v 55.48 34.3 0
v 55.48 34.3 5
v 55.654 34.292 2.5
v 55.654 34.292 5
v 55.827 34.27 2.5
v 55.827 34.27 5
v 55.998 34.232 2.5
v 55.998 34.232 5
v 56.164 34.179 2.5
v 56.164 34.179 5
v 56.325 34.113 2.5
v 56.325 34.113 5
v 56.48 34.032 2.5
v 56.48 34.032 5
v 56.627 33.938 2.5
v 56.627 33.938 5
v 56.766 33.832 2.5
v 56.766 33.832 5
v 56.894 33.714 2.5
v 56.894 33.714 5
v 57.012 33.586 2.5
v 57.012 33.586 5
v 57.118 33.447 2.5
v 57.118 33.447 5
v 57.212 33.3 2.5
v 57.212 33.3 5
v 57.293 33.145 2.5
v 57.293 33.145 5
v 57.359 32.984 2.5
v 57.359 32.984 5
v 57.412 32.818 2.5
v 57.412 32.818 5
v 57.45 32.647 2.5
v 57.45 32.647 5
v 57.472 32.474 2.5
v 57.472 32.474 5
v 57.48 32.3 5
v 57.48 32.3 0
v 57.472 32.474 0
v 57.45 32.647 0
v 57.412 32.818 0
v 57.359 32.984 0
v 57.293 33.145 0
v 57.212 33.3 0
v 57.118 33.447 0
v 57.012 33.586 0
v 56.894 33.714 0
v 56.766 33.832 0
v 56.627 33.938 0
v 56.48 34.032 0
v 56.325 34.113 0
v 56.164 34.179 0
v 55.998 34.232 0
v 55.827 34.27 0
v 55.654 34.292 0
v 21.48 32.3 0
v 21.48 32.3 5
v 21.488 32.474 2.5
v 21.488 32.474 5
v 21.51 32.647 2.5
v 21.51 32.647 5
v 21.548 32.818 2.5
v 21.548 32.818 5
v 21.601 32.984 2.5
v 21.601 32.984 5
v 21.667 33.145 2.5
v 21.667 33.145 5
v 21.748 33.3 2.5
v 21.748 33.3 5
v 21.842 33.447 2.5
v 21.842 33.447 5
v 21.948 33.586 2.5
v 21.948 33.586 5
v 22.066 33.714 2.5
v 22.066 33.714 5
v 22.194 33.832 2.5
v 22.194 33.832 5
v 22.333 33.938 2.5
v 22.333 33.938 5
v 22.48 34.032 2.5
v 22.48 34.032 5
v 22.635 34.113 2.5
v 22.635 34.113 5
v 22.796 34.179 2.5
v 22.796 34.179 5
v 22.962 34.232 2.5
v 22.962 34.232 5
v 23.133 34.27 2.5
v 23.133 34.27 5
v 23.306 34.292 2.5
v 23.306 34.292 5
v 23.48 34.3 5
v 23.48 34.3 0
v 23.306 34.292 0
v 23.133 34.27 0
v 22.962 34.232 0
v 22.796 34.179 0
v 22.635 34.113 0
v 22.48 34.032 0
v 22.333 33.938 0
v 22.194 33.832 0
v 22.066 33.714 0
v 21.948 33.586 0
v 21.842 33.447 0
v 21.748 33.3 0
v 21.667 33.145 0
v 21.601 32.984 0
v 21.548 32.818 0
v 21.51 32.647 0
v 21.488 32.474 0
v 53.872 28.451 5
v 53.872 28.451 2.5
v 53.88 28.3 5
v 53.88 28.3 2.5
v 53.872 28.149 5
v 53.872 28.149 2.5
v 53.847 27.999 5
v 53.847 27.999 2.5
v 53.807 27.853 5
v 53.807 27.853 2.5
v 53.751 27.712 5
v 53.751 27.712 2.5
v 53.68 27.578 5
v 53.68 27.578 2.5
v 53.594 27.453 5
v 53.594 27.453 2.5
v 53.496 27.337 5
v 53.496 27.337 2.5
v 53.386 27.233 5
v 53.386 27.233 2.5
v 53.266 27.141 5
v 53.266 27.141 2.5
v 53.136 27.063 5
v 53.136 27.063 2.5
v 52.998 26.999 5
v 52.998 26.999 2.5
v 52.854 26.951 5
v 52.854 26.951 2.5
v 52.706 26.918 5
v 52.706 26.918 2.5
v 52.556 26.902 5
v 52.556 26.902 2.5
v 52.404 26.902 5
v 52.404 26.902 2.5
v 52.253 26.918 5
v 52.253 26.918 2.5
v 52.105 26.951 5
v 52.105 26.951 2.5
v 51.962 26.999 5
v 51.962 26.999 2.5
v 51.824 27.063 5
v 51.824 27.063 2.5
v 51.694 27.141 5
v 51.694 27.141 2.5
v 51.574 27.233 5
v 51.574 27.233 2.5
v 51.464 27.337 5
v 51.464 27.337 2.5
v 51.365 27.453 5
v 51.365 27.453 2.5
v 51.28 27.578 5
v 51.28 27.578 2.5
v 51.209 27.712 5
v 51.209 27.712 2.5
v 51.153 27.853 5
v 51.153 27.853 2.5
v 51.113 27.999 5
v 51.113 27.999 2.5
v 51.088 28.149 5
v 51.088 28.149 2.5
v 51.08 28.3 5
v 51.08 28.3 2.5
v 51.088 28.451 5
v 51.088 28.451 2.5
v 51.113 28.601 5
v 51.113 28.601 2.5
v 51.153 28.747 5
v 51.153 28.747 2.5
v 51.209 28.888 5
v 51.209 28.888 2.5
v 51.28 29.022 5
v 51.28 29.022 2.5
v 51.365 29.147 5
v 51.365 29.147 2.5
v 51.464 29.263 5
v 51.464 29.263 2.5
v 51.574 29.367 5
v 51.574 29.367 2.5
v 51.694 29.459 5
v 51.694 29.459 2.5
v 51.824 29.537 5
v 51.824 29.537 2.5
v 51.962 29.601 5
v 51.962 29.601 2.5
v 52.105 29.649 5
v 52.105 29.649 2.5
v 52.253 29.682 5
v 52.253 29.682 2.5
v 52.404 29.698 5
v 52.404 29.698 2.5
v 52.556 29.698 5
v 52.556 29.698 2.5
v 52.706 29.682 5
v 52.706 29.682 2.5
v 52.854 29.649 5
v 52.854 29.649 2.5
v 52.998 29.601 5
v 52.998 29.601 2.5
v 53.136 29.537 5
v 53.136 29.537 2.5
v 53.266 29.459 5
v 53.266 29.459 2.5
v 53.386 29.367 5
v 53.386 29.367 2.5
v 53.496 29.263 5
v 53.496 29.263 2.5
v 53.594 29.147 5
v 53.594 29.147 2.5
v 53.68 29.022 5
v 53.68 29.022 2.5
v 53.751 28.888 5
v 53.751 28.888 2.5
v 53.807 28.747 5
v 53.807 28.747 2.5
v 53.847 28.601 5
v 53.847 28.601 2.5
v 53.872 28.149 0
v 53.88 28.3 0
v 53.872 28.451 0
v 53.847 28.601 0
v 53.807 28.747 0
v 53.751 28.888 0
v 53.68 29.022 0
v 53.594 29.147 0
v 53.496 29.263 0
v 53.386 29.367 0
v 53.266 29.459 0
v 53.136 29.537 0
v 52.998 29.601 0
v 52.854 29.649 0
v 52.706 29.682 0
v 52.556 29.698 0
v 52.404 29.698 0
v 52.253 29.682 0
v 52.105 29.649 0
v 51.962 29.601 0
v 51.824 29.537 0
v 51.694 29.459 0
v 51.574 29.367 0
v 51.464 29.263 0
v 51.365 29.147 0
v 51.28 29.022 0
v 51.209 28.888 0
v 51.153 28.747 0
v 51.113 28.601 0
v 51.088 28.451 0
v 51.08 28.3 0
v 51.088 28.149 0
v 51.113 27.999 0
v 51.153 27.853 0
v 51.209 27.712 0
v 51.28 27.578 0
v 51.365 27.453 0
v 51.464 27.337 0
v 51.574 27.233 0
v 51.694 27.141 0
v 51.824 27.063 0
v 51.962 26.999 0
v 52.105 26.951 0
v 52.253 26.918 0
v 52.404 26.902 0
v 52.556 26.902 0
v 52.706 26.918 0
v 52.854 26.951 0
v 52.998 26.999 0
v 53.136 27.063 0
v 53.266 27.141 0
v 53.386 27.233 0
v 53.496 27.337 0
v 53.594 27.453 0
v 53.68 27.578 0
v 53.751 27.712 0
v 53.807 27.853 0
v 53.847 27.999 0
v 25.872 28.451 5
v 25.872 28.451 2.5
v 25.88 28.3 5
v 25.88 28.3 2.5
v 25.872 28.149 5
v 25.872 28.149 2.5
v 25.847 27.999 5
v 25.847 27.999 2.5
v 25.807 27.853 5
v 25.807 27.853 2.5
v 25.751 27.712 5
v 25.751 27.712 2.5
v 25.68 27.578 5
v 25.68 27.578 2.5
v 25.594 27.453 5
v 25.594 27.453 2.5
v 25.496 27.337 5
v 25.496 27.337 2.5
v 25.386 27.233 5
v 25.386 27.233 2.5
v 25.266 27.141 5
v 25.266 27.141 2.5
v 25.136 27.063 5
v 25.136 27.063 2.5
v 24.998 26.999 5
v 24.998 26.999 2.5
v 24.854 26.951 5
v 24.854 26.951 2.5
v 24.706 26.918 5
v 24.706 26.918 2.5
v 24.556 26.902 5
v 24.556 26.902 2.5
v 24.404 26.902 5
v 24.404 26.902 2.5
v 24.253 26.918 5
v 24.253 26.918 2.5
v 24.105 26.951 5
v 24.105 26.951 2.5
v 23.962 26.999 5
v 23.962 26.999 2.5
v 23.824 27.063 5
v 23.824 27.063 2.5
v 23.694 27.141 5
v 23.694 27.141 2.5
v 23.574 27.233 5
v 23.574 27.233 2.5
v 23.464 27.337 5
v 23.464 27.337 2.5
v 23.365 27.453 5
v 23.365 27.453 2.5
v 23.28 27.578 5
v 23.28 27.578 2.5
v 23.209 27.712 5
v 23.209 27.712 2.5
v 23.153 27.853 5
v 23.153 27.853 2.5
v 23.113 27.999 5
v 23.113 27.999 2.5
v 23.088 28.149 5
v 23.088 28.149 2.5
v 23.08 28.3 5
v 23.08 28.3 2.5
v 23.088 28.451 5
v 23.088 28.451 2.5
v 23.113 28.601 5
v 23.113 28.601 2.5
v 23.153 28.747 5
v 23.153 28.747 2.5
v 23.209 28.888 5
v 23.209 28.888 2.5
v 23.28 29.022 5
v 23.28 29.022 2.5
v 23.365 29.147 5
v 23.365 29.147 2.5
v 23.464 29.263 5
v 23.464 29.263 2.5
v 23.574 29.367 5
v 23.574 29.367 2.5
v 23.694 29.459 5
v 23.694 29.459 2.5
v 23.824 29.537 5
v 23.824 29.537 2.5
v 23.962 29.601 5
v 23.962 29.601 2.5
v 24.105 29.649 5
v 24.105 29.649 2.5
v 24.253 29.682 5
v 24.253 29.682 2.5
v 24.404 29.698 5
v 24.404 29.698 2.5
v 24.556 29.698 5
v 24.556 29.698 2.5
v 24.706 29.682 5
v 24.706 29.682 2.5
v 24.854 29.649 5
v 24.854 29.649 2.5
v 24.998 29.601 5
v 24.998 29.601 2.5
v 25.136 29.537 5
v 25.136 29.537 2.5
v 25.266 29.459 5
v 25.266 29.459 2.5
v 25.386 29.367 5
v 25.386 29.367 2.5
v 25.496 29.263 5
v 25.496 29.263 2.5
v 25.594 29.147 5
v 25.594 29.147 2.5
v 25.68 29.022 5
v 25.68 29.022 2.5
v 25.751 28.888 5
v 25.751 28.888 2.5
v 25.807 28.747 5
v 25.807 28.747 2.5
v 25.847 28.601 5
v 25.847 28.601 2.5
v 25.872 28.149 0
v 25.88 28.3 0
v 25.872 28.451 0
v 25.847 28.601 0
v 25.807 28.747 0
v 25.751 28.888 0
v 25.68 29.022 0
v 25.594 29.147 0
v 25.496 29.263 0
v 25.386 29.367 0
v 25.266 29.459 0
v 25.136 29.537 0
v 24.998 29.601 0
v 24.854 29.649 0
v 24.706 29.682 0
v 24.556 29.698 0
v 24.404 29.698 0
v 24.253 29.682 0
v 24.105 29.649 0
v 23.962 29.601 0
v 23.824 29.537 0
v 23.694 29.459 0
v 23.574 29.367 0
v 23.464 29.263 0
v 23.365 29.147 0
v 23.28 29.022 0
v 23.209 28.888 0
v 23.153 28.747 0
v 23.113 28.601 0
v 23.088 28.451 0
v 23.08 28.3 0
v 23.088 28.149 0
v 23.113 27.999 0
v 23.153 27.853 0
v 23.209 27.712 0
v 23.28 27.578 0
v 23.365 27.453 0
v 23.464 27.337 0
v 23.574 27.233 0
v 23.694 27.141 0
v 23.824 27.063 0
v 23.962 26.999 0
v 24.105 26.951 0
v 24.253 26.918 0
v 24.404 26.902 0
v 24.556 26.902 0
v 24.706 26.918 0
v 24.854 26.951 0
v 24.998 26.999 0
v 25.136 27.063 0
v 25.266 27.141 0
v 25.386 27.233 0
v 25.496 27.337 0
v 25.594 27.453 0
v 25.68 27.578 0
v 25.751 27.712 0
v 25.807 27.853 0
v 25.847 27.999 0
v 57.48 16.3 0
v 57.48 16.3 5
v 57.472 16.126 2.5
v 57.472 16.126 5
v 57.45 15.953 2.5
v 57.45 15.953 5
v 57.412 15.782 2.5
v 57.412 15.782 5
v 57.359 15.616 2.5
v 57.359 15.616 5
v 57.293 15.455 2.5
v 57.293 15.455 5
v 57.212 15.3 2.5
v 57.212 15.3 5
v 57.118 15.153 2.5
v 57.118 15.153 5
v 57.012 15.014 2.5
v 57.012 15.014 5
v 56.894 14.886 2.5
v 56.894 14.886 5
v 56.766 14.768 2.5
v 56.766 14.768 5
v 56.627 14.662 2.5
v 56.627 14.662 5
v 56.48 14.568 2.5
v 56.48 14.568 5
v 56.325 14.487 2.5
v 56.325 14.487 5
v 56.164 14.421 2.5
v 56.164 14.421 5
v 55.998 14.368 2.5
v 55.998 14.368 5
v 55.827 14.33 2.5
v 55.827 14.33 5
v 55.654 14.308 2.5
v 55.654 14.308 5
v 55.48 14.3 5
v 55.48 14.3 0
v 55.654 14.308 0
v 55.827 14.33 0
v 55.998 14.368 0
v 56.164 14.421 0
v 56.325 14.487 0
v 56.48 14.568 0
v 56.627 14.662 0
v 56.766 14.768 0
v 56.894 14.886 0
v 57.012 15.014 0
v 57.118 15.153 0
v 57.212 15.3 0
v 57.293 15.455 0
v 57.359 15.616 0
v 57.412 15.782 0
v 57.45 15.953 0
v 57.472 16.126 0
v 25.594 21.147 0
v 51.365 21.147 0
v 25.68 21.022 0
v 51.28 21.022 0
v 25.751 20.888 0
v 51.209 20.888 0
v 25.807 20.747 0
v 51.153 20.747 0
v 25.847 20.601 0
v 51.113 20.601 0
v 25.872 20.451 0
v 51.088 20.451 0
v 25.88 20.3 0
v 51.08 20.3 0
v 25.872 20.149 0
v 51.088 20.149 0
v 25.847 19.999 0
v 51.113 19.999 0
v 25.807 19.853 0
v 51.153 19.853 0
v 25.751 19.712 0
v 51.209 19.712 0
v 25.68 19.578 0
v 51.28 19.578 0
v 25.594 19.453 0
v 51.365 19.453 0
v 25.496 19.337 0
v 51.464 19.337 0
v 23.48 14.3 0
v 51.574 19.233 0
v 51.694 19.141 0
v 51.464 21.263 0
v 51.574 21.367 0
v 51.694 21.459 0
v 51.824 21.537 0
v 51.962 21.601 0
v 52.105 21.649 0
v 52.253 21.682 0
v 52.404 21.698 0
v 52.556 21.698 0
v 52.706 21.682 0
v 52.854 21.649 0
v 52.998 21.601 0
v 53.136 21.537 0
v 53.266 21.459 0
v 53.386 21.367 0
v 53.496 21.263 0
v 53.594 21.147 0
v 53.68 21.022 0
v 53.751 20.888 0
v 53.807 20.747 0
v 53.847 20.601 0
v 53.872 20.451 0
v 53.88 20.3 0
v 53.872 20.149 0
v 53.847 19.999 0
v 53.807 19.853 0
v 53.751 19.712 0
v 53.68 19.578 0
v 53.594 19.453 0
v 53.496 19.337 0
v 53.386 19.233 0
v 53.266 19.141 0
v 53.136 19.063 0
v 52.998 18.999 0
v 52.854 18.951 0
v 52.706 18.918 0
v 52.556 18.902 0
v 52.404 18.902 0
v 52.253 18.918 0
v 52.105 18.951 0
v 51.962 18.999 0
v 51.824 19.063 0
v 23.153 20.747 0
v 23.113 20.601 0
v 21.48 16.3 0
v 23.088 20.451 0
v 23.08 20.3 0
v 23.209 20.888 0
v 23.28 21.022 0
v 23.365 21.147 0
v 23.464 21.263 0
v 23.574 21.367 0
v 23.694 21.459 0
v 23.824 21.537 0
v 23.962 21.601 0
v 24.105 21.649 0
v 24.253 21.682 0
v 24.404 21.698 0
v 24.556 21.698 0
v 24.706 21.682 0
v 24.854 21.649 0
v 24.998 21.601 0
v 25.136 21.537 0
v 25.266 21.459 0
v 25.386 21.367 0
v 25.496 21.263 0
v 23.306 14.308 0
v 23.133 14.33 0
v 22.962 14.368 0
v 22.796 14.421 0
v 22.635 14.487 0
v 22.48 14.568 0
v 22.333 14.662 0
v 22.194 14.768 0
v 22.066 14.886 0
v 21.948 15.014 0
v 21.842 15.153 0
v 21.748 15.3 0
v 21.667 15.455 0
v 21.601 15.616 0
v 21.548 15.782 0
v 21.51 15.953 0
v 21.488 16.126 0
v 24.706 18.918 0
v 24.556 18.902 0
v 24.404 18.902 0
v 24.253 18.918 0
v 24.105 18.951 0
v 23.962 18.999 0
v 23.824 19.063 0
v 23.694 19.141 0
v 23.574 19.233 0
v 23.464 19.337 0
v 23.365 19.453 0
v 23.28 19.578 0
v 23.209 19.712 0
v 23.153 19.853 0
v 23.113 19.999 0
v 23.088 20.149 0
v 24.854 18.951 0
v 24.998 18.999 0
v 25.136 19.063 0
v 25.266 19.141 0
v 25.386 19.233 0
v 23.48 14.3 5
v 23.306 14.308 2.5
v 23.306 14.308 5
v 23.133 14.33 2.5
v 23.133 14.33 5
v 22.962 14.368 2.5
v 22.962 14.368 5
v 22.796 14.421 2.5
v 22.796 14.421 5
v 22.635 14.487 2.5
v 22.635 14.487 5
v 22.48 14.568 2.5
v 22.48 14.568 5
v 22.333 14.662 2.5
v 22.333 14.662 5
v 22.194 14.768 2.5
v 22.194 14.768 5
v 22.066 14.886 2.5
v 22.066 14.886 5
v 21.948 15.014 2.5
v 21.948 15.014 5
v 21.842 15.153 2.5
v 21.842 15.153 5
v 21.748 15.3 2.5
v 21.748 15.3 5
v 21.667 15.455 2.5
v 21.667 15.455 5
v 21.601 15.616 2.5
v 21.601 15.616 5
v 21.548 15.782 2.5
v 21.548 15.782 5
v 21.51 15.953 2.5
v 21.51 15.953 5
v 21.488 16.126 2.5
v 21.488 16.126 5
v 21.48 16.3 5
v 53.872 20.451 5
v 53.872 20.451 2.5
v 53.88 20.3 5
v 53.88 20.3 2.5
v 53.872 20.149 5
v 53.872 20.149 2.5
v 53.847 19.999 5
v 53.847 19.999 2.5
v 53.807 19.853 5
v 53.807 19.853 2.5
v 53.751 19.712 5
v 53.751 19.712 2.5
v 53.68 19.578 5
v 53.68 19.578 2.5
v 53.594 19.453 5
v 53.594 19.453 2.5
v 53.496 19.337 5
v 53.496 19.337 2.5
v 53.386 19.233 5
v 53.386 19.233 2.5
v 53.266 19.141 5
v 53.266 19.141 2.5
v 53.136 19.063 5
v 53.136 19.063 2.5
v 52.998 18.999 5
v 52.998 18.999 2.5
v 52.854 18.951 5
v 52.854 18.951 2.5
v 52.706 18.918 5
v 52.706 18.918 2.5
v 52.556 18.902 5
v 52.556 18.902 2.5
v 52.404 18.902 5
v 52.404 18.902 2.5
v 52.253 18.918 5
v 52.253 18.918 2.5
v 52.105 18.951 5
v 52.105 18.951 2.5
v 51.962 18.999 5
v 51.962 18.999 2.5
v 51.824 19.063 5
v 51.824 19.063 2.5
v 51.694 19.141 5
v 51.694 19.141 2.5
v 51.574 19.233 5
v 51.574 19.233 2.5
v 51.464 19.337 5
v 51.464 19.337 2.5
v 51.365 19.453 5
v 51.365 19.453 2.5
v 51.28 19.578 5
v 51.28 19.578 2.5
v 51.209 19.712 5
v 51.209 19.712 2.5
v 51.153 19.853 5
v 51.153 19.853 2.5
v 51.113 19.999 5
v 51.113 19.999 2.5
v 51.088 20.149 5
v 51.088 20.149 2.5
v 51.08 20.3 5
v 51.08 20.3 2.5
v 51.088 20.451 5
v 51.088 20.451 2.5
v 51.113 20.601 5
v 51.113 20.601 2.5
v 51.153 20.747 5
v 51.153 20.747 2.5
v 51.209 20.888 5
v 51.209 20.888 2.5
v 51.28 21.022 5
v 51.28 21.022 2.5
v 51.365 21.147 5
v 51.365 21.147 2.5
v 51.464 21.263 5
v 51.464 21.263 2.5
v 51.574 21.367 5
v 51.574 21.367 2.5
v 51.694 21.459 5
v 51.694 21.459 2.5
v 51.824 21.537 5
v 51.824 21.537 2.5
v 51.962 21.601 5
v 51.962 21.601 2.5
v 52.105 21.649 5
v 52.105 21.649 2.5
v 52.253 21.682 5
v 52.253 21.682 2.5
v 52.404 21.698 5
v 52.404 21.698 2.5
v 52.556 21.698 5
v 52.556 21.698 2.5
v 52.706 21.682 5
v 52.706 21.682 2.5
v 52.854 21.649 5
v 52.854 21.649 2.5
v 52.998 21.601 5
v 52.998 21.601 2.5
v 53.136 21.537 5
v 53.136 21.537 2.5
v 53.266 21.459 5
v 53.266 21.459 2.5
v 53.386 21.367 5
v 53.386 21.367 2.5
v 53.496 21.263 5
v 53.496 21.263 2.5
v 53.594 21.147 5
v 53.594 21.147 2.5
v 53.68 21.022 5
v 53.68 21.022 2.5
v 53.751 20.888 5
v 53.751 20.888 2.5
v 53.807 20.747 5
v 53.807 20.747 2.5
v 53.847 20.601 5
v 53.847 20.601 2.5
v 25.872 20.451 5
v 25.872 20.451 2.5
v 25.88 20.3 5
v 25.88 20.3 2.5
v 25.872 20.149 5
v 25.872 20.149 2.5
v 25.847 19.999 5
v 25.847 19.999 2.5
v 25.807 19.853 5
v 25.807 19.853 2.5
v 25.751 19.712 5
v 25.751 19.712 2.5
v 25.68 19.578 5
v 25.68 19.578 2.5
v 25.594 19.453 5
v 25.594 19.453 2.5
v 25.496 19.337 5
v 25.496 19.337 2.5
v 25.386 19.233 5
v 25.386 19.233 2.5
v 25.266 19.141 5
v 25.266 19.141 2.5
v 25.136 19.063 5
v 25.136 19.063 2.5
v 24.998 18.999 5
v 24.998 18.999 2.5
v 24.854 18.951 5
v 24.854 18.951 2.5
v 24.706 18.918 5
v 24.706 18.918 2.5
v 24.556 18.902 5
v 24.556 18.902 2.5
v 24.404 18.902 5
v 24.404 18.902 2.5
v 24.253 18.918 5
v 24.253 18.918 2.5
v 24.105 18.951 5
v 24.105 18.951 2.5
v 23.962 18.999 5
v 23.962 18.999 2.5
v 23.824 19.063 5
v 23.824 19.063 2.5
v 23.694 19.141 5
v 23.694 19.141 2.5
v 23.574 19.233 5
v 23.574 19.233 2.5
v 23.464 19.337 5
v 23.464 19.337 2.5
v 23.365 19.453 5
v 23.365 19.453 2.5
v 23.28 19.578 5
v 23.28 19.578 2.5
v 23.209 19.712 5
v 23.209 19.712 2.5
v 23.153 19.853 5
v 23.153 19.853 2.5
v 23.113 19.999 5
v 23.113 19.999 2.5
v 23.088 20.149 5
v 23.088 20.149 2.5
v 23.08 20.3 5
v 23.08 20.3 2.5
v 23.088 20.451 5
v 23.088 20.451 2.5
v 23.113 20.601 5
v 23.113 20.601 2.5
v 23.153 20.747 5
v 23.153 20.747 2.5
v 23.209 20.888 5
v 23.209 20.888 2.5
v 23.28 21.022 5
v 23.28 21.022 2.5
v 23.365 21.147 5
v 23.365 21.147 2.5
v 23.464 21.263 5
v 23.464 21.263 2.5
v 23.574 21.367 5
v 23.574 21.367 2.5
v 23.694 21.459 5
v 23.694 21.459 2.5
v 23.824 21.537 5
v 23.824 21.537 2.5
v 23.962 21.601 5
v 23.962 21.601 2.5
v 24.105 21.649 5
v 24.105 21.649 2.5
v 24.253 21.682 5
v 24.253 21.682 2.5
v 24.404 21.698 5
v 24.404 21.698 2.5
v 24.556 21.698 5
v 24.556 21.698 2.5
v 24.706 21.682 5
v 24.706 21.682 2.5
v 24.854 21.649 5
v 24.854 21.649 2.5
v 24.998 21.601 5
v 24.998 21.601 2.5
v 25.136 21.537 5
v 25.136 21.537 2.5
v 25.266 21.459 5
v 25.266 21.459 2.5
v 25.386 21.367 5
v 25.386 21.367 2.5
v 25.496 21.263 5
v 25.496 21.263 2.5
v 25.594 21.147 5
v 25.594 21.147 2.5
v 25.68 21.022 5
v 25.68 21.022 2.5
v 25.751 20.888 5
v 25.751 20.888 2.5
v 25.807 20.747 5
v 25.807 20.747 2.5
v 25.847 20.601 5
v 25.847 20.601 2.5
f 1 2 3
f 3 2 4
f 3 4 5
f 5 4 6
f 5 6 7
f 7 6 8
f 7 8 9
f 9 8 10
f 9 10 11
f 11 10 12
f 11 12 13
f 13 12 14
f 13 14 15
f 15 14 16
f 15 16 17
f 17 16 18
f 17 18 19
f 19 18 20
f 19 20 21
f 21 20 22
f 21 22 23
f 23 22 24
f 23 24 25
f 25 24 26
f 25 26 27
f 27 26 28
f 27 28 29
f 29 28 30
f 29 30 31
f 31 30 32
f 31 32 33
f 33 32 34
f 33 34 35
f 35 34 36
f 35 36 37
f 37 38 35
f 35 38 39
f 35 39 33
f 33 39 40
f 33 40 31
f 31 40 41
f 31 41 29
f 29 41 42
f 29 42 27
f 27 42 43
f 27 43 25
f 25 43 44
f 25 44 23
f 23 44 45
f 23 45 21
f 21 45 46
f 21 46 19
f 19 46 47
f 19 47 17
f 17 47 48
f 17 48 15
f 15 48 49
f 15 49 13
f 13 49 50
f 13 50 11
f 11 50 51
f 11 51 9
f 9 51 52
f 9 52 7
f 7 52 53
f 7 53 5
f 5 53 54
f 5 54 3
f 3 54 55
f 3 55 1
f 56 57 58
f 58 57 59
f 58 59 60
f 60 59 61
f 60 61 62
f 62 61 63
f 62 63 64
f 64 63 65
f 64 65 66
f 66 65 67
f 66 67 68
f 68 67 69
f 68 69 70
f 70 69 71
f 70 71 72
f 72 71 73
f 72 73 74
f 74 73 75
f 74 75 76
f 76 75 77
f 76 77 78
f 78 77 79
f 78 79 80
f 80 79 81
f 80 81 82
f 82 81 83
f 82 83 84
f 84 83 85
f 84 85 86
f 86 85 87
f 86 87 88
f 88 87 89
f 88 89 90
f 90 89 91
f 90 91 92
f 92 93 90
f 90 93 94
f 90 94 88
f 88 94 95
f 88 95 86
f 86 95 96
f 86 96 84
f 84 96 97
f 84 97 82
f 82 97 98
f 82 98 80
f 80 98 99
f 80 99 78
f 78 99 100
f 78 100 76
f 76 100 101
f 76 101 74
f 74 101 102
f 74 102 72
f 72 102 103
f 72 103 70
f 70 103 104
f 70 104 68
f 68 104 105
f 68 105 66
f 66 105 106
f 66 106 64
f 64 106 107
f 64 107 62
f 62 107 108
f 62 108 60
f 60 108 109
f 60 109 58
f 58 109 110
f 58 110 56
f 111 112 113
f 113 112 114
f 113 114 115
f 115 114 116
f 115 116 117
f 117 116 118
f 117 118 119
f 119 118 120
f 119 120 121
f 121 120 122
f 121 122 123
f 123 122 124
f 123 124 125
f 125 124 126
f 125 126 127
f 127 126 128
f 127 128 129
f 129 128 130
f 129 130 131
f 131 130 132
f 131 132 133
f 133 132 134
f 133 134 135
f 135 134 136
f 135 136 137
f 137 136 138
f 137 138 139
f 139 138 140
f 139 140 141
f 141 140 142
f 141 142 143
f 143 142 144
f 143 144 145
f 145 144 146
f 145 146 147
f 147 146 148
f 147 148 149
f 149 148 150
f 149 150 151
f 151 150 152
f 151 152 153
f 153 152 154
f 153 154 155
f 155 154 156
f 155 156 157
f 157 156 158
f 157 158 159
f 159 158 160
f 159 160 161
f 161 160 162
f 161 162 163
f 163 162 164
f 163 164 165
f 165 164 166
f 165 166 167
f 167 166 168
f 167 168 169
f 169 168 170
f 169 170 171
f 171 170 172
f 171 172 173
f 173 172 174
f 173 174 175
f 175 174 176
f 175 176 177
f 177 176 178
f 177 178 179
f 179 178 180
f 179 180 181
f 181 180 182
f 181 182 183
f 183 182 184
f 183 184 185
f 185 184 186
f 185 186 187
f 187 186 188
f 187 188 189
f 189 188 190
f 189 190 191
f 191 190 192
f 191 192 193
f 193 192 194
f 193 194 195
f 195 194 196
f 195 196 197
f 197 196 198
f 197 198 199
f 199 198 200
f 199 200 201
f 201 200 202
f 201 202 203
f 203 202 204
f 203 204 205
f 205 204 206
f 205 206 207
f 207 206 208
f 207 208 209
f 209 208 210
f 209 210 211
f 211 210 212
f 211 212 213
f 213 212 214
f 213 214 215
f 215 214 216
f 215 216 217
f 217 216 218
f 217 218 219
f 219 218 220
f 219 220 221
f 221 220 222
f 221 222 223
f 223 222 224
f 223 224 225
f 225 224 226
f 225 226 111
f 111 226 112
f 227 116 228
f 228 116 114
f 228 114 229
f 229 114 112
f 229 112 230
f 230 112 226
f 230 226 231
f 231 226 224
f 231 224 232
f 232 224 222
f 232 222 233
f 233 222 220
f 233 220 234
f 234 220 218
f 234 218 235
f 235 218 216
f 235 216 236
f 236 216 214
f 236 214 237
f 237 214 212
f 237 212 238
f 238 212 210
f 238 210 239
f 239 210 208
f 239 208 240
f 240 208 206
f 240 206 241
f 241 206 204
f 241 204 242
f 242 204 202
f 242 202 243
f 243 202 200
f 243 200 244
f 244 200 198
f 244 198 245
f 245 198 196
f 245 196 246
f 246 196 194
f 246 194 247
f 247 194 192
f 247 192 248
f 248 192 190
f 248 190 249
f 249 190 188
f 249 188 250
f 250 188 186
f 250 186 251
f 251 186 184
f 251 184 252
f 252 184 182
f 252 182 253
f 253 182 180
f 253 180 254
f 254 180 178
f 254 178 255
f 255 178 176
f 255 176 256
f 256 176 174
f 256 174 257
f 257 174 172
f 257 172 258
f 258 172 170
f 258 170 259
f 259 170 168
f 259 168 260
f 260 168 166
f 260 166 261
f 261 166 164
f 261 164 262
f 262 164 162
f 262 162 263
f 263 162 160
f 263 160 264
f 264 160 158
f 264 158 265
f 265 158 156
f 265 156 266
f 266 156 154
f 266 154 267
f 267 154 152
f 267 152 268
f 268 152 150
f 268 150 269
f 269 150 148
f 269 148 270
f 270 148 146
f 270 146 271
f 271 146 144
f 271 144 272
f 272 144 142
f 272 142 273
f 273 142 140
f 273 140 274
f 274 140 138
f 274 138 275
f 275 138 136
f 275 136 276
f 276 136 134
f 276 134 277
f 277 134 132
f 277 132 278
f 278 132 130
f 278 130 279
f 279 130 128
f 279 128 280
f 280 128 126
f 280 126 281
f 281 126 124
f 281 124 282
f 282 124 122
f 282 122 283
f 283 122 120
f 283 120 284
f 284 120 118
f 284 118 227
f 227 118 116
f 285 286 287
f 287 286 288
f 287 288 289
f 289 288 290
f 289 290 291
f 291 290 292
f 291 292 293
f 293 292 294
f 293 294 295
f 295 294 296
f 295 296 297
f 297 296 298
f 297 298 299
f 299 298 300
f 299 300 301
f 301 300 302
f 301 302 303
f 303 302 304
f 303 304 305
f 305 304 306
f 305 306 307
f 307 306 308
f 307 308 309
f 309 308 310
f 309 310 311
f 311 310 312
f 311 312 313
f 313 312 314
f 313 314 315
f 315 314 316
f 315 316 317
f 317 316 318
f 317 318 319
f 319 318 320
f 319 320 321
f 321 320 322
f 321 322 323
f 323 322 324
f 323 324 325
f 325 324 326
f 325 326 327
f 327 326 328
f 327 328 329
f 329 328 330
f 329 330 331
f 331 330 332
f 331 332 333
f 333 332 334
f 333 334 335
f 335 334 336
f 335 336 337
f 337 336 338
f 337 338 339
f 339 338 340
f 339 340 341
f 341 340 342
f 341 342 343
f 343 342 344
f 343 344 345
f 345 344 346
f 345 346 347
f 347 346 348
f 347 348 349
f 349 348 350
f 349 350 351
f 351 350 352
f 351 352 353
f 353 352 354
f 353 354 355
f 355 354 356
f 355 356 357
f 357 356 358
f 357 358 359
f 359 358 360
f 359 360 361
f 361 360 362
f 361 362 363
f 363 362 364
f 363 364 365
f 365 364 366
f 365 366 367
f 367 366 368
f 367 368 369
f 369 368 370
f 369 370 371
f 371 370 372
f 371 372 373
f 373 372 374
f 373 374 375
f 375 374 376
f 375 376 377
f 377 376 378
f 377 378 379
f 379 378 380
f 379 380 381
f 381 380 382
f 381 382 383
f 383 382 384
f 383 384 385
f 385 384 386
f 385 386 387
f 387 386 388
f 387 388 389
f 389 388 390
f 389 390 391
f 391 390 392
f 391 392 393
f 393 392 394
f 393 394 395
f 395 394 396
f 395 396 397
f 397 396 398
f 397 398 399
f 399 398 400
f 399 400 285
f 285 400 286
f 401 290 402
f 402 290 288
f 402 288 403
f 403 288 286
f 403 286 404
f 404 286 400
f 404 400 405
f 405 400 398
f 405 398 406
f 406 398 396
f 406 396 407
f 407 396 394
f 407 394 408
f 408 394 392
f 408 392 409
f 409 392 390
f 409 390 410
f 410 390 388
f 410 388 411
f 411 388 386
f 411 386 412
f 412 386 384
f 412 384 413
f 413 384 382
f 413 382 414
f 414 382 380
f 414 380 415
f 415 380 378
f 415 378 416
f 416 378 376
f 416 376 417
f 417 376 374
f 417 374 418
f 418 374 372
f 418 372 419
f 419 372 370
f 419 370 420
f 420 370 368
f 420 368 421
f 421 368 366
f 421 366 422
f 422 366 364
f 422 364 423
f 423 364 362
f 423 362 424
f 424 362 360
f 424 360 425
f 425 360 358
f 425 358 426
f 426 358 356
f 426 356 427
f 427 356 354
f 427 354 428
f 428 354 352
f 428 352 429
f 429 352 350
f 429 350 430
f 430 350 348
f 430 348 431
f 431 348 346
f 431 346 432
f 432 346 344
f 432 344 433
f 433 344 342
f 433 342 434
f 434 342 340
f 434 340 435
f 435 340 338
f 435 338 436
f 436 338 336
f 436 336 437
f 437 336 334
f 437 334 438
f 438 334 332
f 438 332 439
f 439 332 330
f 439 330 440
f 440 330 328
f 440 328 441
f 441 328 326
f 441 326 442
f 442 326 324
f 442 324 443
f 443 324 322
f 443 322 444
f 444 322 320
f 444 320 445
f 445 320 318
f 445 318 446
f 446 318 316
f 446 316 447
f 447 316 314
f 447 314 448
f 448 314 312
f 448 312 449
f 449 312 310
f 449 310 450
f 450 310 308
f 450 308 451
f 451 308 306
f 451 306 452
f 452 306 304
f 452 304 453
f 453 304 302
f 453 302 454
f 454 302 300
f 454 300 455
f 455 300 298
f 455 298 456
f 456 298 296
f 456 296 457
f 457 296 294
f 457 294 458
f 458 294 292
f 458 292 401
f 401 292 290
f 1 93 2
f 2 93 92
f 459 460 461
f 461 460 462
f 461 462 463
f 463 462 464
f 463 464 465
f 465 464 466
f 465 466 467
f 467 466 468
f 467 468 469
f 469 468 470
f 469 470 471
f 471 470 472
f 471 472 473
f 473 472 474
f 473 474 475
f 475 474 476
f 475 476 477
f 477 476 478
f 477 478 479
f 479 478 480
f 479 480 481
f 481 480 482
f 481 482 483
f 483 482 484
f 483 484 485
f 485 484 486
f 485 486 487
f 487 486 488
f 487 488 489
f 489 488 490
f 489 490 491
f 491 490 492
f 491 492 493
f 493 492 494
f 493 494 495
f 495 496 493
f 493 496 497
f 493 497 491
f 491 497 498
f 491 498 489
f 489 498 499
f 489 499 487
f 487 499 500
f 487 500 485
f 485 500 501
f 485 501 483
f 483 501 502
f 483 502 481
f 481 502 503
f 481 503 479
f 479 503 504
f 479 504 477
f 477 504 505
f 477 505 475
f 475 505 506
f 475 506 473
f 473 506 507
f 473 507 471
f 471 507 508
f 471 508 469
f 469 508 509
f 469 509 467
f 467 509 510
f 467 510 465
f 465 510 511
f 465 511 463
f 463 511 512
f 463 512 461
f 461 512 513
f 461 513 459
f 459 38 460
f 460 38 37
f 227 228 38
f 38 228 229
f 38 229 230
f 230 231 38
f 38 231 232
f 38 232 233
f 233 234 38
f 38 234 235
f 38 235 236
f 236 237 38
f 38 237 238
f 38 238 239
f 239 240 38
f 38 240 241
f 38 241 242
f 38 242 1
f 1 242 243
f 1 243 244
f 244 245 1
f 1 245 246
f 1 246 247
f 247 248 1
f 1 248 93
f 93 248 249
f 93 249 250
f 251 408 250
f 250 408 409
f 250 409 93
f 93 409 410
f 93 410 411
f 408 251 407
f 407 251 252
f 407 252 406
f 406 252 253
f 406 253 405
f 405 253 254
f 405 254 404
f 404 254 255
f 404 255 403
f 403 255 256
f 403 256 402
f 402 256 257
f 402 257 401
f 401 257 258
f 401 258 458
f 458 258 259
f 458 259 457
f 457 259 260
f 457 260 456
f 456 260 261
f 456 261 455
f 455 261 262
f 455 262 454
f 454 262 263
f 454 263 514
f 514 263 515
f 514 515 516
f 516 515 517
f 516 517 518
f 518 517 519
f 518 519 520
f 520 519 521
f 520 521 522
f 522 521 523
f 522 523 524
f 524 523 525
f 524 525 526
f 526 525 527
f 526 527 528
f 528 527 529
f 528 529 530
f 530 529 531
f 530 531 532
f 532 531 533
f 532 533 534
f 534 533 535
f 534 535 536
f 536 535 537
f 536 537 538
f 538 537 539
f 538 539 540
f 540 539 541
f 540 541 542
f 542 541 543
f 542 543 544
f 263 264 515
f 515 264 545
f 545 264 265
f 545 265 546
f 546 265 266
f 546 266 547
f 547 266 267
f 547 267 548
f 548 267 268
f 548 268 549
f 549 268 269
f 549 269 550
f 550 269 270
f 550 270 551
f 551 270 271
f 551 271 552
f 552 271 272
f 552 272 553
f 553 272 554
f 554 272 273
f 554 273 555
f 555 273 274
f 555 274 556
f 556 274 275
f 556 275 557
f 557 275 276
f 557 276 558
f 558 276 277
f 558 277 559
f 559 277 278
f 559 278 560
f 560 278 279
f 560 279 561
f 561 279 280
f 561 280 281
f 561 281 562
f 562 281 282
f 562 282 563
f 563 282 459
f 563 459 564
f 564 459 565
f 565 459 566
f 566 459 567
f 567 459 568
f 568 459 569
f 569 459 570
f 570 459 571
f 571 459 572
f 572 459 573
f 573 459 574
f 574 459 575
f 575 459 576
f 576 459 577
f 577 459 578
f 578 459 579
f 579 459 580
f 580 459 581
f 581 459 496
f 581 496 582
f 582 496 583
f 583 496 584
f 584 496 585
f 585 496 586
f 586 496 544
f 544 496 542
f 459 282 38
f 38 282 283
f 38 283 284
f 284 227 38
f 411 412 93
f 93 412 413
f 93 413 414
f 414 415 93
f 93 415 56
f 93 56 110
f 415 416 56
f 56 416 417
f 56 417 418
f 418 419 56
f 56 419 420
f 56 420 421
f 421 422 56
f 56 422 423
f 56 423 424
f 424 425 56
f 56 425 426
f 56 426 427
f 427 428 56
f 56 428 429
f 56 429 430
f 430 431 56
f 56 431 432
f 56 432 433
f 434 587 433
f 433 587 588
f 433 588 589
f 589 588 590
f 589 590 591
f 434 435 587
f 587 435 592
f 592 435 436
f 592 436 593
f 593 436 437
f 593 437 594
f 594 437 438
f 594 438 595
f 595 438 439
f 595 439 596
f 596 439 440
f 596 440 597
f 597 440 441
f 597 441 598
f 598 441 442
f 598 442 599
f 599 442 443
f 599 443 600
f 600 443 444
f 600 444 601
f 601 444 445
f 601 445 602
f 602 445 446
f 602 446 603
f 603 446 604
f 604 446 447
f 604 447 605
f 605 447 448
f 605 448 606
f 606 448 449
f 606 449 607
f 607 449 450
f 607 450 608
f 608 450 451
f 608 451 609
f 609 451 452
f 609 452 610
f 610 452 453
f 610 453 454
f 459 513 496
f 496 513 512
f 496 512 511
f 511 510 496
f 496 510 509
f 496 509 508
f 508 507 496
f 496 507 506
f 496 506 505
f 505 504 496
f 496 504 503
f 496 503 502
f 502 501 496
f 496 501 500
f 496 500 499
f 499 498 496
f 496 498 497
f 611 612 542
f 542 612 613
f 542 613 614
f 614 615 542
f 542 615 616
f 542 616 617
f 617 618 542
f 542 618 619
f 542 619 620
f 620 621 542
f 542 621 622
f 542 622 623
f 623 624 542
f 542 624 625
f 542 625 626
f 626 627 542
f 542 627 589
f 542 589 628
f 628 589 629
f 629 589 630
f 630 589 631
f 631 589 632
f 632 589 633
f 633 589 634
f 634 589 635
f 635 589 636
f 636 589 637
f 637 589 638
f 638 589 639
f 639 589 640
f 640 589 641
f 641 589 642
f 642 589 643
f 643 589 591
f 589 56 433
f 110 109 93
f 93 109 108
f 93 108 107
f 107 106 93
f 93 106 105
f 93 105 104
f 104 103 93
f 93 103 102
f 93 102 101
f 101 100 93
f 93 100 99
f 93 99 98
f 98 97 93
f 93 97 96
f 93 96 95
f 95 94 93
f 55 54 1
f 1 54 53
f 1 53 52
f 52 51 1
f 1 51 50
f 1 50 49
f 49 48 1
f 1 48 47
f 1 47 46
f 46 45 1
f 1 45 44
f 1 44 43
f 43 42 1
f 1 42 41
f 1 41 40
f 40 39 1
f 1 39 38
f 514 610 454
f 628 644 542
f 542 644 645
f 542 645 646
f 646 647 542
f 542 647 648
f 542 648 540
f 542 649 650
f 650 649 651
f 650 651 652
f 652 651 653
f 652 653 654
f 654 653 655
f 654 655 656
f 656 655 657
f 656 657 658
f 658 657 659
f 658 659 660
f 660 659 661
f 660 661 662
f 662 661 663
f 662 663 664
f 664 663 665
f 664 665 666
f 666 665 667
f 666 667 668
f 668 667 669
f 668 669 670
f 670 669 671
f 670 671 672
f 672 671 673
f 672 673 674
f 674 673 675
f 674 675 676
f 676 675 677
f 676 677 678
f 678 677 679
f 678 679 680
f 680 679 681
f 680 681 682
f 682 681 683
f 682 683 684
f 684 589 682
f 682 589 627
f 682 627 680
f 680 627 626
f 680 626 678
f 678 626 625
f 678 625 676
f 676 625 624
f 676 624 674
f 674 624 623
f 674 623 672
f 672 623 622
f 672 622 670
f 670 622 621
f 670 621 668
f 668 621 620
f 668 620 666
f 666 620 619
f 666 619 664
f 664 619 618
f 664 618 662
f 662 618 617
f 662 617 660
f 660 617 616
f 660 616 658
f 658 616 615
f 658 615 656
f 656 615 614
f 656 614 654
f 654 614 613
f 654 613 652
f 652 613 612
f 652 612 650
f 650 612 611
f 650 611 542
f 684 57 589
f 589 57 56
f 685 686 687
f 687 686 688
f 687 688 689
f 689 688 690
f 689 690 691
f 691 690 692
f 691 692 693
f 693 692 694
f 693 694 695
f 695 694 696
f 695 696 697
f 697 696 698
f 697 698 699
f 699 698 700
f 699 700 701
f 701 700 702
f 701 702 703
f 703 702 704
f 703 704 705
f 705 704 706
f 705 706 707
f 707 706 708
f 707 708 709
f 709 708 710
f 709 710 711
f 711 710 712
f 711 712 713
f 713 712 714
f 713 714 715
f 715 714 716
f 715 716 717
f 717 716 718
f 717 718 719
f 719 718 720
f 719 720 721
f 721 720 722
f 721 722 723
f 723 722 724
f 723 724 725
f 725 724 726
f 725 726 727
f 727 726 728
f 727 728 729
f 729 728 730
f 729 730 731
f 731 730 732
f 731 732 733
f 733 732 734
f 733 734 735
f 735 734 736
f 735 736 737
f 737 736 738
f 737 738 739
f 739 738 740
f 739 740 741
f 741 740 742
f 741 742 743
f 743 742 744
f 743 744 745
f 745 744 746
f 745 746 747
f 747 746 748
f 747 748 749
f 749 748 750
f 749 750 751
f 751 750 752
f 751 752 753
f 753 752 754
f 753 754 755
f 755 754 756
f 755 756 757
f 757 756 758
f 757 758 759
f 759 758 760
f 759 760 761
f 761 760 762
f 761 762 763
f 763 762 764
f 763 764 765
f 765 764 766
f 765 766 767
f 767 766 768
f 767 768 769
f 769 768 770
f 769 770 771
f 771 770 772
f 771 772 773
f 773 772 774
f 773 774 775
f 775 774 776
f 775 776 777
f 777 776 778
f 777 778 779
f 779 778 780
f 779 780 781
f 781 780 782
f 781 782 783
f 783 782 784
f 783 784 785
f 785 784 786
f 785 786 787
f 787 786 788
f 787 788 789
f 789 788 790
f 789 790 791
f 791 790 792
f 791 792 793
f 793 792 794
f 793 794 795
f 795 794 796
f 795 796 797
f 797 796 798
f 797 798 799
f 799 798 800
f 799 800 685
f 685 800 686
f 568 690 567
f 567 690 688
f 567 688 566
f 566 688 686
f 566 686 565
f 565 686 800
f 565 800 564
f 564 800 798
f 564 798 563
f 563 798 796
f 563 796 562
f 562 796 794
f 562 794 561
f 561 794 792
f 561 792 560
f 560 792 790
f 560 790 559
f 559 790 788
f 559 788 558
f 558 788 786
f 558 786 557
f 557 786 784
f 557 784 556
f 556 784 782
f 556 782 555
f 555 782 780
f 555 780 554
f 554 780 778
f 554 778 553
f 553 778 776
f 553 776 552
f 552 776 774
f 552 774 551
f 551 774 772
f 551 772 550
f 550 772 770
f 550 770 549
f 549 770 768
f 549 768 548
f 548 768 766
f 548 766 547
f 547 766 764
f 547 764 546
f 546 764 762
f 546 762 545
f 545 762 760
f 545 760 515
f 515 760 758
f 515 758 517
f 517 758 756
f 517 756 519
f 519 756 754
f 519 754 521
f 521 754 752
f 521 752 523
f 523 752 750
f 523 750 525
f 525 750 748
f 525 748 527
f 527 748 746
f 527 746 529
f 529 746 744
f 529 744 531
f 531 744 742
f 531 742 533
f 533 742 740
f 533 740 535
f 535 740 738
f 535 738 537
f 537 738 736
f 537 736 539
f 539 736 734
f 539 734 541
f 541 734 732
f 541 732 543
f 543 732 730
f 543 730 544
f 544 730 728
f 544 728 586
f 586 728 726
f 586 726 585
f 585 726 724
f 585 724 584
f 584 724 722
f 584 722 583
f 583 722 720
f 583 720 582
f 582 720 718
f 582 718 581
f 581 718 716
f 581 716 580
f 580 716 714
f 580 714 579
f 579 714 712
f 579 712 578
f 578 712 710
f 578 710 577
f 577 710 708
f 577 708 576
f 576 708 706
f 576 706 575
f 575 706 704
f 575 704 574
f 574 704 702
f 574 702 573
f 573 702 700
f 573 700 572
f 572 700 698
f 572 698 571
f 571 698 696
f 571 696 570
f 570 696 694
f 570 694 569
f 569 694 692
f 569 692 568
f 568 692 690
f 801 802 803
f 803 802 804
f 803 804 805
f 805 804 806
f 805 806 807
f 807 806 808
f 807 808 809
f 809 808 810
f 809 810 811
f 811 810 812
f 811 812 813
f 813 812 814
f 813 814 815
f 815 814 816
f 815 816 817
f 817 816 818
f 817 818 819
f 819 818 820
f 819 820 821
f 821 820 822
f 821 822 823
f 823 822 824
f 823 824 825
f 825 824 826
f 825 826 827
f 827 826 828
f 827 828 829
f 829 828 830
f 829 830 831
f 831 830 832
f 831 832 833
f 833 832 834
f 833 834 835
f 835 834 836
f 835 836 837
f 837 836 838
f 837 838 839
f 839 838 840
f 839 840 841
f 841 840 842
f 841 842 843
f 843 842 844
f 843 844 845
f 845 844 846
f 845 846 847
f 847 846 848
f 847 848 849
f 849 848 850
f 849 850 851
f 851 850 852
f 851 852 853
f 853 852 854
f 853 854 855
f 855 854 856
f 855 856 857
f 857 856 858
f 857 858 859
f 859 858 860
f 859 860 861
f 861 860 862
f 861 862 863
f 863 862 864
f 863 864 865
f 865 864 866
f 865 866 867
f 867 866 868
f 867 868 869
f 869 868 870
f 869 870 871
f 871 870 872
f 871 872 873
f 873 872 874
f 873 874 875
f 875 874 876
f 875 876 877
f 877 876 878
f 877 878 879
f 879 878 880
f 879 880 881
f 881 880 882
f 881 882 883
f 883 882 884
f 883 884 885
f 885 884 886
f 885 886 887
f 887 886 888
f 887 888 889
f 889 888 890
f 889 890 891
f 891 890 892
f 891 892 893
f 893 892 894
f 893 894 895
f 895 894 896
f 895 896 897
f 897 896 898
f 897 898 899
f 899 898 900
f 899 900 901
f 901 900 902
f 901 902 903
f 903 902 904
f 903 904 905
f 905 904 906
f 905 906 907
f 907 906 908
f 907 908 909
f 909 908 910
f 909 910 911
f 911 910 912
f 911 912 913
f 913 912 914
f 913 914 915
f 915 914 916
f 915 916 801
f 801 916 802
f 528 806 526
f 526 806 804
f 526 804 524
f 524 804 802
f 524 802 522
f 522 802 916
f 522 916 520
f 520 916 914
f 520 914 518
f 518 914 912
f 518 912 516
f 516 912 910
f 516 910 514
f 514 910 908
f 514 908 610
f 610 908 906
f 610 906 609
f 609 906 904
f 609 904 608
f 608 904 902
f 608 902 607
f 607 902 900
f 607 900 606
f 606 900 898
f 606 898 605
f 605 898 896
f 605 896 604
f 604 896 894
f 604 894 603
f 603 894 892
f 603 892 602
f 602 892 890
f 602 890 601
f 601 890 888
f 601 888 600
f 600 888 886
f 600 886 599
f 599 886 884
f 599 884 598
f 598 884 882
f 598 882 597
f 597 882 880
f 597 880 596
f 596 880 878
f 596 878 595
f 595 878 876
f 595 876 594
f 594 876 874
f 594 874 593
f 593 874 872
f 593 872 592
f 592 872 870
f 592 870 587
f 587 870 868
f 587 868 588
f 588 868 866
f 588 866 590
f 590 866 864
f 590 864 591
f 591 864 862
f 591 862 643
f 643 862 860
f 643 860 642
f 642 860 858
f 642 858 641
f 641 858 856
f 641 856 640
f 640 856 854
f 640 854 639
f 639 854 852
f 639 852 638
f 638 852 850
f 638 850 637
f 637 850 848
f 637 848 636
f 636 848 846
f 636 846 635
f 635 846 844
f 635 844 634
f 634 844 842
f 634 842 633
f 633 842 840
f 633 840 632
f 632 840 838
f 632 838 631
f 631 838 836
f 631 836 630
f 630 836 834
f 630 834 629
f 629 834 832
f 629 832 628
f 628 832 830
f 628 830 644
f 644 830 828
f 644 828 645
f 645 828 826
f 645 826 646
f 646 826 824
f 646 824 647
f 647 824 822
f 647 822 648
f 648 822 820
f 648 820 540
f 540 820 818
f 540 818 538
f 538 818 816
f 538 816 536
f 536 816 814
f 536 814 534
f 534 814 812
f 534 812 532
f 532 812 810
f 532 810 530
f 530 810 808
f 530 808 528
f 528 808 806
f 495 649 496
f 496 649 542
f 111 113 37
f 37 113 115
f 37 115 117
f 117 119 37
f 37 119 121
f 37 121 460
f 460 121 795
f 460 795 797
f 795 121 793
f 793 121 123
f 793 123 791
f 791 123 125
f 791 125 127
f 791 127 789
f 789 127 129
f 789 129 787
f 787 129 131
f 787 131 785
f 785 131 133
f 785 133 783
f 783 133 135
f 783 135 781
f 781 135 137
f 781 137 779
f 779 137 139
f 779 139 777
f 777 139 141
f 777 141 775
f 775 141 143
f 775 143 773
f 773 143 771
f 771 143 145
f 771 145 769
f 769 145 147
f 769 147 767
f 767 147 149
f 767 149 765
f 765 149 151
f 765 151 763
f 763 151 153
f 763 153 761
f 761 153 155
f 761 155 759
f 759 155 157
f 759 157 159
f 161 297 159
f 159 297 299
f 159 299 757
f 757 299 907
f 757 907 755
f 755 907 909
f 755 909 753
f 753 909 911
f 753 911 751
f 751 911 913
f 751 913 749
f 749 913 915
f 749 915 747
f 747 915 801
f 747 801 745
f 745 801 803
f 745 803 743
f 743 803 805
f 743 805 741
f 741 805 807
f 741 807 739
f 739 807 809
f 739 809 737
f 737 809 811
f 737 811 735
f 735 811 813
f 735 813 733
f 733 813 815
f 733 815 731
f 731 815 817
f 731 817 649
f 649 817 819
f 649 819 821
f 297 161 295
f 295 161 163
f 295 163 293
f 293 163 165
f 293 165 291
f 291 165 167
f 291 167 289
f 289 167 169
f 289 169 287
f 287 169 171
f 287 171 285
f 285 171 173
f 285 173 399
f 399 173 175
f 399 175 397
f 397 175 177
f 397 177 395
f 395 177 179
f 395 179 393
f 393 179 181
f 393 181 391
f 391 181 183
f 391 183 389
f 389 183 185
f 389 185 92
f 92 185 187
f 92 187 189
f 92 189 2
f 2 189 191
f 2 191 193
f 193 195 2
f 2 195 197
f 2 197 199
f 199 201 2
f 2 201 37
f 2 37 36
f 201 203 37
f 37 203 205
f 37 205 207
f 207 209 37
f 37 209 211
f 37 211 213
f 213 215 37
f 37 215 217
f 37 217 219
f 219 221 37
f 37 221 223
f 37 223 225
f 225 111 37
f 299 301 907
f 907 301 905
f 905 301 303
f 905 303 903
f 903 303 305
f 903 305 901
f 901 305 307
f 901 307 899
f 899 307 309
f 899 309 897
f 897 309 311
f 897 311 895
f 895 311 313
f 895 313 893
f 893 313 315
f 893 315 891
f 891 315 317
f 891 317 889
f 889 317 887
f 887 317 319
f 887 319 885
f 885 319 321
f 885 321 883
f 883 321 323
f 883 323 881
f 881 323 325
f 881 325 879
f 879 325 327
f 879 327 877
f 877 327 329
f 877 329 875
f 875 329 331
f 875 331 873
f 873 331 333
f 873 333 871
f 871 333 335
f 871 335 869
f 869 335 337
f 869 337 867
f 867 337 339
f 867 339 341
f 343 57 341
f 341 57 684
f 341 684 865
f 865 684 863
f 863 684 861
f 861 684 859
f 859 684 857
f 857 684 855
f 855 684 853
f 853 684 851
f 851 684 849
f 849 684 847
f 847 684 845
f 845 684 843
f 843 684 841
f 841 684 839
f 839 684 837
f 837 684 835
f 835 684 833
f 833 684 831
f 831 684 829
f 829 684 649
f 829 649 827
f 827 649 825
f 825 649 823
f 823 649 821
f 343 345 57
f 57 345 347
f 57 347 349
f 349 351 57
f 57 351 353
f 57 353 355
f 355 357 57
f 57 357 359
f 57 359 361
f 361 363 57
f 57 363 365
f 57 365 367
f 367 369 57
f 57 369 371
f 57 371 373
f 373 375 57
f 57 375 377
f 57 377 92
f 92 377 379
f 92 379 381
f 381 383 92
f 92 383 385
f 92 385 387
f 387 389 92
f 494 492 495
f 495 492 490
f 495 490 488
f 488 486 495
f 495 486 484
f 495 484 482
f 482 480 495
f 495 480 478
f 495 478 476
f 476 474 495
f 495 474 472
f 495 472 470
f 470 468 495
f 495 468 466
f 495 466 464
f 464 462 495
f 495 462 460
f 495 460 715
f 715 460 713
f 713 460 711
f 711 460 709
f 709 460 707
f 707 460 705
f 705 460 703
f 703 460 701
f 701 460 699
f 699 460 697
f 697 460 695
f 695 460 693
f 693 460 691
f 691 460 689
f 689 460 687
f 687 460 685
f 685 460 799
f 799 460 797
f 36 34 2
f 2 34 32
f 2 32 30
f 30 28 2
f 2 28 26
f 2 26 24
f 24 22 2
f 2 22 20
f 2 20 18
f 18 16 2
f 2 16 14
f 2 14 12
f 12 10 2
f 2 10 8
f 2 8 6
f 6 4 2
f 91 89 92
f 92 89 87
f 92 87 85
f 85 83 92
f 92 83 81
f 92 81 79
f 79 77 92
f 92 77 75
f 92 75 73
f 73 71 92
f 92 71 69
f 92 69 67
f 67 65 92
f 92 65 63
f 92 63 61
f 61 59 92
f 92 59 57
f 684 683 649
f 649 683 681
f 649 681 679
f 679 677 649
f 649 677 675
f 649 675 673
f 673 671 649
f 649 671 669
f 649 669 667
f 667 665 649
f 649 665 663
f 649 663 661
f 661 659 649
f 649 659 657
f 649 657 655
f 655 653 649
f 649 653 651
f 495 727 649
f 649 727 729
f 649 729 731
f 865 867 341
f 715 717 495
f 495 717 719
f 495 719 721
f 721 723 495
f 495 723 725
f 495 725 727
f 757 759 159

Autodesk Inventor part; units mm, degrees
ref_plane "YZ Plane" through (0, 0, 0) normal (1, 0, 0) x (0, 1, 0)
ref_plane "XZ Plane" through (0, 0, 0) normal (0, 1, 0) x (-1, 0, 0)
ref_plane "XY Plane" through (0, 0, 0) normal (0, 0, 1) x (1, 0, 0)
ref_plane "Arbeitsebene1" through (0, 0, 0) normal (0, 0, 1) x (1, 0, 0)
sketch "Skizze1" plane through (0, 0, 0) normal (0, 0, 1) x (1, 0, 0)
  circle A0 centre (86.3298, 4) radius 1.4 projected
  circle A1 centre (24.4799, 20.3) radius 1.4 projected
  circle A2 centre (52.4799, 20.3) radius 1.4 projected
  circle A3 centre (52.4799, 6.2) radius 1.4 projected
  circle A4 centre (24.4799, 6.2) radius 1.4 projected
  circle A5 centre (7.3298, 20.3) radius 1.4 projected
  circle A6 centre (7.3298, 4) radius 1.4 projected
  line L0 (90, 24.3) -> (90, 0) projected
  line L1 (89.0152, 24.3) -> (90, 24.3) projected
  line L2 (89.0152, 24.3) -> (89.0152, 10) projected
  line L3 (89.0152, 10) -> (59.35, 10) projected
  line L4 (59.35, 10) -> (59.35, 24.3) projected
  line L5 (5, 24.3) -> (59.35, 24.3) projected
  line L6 (5, 0) -> (5, 24.3) projected
  line L7 (5, 0) -> (90, 0) projected
  line L8 (6, 48.6) -> (6, 24.3) projected
  line L9 (6, 24.3) -> (60.35, 24.3) projected
  line L10 (60.35, 38.6) -> (60.35, 24.3) projected
  line L11 (89.95, 38.6) -> (60.35, 38.6) projected
  line L12 (89.95, 24.3) -> (89.95, 38.6) projected
  line L13 (89.95, 24.3) -> (91, 24.3) projected
  line L14 (91, 24.3) -> (91, 48.6) projected
  line L15 (6, 48.6) -> (91, 48.6) projected
  line L16 (21.4799, 24.3) -> (57.4799, 24.3)
  line L17 (57.4799, 24.3) -> (57.4799, 14.3)
  line L18 (57.4799, 14.3) -> (21.4799, 14.3)
  line L19 (21.4799, 14.3) -> (21.4799, 24.3)
  point P0 (0, 0)
  dimension "d0" = 36
  dimension "d1" = 10
  dimension "d2" = 3
extrude "Extrusion1" add sketch "Skizze1" along normal blind 5 contours L5 L17 L18 L19
fillet "Rundung1" radius 2 2 edges at (21.4799, 14.3, 2.5) (57.4799, 14.3, 2.5)
mirror "Spiegeln1" about plane through (57.4799, 24.3, 0) normal (0, 1, 0) of "Extrusion1", "Rundung1"
properties part number "60_Planktoscope_Cabletie"
